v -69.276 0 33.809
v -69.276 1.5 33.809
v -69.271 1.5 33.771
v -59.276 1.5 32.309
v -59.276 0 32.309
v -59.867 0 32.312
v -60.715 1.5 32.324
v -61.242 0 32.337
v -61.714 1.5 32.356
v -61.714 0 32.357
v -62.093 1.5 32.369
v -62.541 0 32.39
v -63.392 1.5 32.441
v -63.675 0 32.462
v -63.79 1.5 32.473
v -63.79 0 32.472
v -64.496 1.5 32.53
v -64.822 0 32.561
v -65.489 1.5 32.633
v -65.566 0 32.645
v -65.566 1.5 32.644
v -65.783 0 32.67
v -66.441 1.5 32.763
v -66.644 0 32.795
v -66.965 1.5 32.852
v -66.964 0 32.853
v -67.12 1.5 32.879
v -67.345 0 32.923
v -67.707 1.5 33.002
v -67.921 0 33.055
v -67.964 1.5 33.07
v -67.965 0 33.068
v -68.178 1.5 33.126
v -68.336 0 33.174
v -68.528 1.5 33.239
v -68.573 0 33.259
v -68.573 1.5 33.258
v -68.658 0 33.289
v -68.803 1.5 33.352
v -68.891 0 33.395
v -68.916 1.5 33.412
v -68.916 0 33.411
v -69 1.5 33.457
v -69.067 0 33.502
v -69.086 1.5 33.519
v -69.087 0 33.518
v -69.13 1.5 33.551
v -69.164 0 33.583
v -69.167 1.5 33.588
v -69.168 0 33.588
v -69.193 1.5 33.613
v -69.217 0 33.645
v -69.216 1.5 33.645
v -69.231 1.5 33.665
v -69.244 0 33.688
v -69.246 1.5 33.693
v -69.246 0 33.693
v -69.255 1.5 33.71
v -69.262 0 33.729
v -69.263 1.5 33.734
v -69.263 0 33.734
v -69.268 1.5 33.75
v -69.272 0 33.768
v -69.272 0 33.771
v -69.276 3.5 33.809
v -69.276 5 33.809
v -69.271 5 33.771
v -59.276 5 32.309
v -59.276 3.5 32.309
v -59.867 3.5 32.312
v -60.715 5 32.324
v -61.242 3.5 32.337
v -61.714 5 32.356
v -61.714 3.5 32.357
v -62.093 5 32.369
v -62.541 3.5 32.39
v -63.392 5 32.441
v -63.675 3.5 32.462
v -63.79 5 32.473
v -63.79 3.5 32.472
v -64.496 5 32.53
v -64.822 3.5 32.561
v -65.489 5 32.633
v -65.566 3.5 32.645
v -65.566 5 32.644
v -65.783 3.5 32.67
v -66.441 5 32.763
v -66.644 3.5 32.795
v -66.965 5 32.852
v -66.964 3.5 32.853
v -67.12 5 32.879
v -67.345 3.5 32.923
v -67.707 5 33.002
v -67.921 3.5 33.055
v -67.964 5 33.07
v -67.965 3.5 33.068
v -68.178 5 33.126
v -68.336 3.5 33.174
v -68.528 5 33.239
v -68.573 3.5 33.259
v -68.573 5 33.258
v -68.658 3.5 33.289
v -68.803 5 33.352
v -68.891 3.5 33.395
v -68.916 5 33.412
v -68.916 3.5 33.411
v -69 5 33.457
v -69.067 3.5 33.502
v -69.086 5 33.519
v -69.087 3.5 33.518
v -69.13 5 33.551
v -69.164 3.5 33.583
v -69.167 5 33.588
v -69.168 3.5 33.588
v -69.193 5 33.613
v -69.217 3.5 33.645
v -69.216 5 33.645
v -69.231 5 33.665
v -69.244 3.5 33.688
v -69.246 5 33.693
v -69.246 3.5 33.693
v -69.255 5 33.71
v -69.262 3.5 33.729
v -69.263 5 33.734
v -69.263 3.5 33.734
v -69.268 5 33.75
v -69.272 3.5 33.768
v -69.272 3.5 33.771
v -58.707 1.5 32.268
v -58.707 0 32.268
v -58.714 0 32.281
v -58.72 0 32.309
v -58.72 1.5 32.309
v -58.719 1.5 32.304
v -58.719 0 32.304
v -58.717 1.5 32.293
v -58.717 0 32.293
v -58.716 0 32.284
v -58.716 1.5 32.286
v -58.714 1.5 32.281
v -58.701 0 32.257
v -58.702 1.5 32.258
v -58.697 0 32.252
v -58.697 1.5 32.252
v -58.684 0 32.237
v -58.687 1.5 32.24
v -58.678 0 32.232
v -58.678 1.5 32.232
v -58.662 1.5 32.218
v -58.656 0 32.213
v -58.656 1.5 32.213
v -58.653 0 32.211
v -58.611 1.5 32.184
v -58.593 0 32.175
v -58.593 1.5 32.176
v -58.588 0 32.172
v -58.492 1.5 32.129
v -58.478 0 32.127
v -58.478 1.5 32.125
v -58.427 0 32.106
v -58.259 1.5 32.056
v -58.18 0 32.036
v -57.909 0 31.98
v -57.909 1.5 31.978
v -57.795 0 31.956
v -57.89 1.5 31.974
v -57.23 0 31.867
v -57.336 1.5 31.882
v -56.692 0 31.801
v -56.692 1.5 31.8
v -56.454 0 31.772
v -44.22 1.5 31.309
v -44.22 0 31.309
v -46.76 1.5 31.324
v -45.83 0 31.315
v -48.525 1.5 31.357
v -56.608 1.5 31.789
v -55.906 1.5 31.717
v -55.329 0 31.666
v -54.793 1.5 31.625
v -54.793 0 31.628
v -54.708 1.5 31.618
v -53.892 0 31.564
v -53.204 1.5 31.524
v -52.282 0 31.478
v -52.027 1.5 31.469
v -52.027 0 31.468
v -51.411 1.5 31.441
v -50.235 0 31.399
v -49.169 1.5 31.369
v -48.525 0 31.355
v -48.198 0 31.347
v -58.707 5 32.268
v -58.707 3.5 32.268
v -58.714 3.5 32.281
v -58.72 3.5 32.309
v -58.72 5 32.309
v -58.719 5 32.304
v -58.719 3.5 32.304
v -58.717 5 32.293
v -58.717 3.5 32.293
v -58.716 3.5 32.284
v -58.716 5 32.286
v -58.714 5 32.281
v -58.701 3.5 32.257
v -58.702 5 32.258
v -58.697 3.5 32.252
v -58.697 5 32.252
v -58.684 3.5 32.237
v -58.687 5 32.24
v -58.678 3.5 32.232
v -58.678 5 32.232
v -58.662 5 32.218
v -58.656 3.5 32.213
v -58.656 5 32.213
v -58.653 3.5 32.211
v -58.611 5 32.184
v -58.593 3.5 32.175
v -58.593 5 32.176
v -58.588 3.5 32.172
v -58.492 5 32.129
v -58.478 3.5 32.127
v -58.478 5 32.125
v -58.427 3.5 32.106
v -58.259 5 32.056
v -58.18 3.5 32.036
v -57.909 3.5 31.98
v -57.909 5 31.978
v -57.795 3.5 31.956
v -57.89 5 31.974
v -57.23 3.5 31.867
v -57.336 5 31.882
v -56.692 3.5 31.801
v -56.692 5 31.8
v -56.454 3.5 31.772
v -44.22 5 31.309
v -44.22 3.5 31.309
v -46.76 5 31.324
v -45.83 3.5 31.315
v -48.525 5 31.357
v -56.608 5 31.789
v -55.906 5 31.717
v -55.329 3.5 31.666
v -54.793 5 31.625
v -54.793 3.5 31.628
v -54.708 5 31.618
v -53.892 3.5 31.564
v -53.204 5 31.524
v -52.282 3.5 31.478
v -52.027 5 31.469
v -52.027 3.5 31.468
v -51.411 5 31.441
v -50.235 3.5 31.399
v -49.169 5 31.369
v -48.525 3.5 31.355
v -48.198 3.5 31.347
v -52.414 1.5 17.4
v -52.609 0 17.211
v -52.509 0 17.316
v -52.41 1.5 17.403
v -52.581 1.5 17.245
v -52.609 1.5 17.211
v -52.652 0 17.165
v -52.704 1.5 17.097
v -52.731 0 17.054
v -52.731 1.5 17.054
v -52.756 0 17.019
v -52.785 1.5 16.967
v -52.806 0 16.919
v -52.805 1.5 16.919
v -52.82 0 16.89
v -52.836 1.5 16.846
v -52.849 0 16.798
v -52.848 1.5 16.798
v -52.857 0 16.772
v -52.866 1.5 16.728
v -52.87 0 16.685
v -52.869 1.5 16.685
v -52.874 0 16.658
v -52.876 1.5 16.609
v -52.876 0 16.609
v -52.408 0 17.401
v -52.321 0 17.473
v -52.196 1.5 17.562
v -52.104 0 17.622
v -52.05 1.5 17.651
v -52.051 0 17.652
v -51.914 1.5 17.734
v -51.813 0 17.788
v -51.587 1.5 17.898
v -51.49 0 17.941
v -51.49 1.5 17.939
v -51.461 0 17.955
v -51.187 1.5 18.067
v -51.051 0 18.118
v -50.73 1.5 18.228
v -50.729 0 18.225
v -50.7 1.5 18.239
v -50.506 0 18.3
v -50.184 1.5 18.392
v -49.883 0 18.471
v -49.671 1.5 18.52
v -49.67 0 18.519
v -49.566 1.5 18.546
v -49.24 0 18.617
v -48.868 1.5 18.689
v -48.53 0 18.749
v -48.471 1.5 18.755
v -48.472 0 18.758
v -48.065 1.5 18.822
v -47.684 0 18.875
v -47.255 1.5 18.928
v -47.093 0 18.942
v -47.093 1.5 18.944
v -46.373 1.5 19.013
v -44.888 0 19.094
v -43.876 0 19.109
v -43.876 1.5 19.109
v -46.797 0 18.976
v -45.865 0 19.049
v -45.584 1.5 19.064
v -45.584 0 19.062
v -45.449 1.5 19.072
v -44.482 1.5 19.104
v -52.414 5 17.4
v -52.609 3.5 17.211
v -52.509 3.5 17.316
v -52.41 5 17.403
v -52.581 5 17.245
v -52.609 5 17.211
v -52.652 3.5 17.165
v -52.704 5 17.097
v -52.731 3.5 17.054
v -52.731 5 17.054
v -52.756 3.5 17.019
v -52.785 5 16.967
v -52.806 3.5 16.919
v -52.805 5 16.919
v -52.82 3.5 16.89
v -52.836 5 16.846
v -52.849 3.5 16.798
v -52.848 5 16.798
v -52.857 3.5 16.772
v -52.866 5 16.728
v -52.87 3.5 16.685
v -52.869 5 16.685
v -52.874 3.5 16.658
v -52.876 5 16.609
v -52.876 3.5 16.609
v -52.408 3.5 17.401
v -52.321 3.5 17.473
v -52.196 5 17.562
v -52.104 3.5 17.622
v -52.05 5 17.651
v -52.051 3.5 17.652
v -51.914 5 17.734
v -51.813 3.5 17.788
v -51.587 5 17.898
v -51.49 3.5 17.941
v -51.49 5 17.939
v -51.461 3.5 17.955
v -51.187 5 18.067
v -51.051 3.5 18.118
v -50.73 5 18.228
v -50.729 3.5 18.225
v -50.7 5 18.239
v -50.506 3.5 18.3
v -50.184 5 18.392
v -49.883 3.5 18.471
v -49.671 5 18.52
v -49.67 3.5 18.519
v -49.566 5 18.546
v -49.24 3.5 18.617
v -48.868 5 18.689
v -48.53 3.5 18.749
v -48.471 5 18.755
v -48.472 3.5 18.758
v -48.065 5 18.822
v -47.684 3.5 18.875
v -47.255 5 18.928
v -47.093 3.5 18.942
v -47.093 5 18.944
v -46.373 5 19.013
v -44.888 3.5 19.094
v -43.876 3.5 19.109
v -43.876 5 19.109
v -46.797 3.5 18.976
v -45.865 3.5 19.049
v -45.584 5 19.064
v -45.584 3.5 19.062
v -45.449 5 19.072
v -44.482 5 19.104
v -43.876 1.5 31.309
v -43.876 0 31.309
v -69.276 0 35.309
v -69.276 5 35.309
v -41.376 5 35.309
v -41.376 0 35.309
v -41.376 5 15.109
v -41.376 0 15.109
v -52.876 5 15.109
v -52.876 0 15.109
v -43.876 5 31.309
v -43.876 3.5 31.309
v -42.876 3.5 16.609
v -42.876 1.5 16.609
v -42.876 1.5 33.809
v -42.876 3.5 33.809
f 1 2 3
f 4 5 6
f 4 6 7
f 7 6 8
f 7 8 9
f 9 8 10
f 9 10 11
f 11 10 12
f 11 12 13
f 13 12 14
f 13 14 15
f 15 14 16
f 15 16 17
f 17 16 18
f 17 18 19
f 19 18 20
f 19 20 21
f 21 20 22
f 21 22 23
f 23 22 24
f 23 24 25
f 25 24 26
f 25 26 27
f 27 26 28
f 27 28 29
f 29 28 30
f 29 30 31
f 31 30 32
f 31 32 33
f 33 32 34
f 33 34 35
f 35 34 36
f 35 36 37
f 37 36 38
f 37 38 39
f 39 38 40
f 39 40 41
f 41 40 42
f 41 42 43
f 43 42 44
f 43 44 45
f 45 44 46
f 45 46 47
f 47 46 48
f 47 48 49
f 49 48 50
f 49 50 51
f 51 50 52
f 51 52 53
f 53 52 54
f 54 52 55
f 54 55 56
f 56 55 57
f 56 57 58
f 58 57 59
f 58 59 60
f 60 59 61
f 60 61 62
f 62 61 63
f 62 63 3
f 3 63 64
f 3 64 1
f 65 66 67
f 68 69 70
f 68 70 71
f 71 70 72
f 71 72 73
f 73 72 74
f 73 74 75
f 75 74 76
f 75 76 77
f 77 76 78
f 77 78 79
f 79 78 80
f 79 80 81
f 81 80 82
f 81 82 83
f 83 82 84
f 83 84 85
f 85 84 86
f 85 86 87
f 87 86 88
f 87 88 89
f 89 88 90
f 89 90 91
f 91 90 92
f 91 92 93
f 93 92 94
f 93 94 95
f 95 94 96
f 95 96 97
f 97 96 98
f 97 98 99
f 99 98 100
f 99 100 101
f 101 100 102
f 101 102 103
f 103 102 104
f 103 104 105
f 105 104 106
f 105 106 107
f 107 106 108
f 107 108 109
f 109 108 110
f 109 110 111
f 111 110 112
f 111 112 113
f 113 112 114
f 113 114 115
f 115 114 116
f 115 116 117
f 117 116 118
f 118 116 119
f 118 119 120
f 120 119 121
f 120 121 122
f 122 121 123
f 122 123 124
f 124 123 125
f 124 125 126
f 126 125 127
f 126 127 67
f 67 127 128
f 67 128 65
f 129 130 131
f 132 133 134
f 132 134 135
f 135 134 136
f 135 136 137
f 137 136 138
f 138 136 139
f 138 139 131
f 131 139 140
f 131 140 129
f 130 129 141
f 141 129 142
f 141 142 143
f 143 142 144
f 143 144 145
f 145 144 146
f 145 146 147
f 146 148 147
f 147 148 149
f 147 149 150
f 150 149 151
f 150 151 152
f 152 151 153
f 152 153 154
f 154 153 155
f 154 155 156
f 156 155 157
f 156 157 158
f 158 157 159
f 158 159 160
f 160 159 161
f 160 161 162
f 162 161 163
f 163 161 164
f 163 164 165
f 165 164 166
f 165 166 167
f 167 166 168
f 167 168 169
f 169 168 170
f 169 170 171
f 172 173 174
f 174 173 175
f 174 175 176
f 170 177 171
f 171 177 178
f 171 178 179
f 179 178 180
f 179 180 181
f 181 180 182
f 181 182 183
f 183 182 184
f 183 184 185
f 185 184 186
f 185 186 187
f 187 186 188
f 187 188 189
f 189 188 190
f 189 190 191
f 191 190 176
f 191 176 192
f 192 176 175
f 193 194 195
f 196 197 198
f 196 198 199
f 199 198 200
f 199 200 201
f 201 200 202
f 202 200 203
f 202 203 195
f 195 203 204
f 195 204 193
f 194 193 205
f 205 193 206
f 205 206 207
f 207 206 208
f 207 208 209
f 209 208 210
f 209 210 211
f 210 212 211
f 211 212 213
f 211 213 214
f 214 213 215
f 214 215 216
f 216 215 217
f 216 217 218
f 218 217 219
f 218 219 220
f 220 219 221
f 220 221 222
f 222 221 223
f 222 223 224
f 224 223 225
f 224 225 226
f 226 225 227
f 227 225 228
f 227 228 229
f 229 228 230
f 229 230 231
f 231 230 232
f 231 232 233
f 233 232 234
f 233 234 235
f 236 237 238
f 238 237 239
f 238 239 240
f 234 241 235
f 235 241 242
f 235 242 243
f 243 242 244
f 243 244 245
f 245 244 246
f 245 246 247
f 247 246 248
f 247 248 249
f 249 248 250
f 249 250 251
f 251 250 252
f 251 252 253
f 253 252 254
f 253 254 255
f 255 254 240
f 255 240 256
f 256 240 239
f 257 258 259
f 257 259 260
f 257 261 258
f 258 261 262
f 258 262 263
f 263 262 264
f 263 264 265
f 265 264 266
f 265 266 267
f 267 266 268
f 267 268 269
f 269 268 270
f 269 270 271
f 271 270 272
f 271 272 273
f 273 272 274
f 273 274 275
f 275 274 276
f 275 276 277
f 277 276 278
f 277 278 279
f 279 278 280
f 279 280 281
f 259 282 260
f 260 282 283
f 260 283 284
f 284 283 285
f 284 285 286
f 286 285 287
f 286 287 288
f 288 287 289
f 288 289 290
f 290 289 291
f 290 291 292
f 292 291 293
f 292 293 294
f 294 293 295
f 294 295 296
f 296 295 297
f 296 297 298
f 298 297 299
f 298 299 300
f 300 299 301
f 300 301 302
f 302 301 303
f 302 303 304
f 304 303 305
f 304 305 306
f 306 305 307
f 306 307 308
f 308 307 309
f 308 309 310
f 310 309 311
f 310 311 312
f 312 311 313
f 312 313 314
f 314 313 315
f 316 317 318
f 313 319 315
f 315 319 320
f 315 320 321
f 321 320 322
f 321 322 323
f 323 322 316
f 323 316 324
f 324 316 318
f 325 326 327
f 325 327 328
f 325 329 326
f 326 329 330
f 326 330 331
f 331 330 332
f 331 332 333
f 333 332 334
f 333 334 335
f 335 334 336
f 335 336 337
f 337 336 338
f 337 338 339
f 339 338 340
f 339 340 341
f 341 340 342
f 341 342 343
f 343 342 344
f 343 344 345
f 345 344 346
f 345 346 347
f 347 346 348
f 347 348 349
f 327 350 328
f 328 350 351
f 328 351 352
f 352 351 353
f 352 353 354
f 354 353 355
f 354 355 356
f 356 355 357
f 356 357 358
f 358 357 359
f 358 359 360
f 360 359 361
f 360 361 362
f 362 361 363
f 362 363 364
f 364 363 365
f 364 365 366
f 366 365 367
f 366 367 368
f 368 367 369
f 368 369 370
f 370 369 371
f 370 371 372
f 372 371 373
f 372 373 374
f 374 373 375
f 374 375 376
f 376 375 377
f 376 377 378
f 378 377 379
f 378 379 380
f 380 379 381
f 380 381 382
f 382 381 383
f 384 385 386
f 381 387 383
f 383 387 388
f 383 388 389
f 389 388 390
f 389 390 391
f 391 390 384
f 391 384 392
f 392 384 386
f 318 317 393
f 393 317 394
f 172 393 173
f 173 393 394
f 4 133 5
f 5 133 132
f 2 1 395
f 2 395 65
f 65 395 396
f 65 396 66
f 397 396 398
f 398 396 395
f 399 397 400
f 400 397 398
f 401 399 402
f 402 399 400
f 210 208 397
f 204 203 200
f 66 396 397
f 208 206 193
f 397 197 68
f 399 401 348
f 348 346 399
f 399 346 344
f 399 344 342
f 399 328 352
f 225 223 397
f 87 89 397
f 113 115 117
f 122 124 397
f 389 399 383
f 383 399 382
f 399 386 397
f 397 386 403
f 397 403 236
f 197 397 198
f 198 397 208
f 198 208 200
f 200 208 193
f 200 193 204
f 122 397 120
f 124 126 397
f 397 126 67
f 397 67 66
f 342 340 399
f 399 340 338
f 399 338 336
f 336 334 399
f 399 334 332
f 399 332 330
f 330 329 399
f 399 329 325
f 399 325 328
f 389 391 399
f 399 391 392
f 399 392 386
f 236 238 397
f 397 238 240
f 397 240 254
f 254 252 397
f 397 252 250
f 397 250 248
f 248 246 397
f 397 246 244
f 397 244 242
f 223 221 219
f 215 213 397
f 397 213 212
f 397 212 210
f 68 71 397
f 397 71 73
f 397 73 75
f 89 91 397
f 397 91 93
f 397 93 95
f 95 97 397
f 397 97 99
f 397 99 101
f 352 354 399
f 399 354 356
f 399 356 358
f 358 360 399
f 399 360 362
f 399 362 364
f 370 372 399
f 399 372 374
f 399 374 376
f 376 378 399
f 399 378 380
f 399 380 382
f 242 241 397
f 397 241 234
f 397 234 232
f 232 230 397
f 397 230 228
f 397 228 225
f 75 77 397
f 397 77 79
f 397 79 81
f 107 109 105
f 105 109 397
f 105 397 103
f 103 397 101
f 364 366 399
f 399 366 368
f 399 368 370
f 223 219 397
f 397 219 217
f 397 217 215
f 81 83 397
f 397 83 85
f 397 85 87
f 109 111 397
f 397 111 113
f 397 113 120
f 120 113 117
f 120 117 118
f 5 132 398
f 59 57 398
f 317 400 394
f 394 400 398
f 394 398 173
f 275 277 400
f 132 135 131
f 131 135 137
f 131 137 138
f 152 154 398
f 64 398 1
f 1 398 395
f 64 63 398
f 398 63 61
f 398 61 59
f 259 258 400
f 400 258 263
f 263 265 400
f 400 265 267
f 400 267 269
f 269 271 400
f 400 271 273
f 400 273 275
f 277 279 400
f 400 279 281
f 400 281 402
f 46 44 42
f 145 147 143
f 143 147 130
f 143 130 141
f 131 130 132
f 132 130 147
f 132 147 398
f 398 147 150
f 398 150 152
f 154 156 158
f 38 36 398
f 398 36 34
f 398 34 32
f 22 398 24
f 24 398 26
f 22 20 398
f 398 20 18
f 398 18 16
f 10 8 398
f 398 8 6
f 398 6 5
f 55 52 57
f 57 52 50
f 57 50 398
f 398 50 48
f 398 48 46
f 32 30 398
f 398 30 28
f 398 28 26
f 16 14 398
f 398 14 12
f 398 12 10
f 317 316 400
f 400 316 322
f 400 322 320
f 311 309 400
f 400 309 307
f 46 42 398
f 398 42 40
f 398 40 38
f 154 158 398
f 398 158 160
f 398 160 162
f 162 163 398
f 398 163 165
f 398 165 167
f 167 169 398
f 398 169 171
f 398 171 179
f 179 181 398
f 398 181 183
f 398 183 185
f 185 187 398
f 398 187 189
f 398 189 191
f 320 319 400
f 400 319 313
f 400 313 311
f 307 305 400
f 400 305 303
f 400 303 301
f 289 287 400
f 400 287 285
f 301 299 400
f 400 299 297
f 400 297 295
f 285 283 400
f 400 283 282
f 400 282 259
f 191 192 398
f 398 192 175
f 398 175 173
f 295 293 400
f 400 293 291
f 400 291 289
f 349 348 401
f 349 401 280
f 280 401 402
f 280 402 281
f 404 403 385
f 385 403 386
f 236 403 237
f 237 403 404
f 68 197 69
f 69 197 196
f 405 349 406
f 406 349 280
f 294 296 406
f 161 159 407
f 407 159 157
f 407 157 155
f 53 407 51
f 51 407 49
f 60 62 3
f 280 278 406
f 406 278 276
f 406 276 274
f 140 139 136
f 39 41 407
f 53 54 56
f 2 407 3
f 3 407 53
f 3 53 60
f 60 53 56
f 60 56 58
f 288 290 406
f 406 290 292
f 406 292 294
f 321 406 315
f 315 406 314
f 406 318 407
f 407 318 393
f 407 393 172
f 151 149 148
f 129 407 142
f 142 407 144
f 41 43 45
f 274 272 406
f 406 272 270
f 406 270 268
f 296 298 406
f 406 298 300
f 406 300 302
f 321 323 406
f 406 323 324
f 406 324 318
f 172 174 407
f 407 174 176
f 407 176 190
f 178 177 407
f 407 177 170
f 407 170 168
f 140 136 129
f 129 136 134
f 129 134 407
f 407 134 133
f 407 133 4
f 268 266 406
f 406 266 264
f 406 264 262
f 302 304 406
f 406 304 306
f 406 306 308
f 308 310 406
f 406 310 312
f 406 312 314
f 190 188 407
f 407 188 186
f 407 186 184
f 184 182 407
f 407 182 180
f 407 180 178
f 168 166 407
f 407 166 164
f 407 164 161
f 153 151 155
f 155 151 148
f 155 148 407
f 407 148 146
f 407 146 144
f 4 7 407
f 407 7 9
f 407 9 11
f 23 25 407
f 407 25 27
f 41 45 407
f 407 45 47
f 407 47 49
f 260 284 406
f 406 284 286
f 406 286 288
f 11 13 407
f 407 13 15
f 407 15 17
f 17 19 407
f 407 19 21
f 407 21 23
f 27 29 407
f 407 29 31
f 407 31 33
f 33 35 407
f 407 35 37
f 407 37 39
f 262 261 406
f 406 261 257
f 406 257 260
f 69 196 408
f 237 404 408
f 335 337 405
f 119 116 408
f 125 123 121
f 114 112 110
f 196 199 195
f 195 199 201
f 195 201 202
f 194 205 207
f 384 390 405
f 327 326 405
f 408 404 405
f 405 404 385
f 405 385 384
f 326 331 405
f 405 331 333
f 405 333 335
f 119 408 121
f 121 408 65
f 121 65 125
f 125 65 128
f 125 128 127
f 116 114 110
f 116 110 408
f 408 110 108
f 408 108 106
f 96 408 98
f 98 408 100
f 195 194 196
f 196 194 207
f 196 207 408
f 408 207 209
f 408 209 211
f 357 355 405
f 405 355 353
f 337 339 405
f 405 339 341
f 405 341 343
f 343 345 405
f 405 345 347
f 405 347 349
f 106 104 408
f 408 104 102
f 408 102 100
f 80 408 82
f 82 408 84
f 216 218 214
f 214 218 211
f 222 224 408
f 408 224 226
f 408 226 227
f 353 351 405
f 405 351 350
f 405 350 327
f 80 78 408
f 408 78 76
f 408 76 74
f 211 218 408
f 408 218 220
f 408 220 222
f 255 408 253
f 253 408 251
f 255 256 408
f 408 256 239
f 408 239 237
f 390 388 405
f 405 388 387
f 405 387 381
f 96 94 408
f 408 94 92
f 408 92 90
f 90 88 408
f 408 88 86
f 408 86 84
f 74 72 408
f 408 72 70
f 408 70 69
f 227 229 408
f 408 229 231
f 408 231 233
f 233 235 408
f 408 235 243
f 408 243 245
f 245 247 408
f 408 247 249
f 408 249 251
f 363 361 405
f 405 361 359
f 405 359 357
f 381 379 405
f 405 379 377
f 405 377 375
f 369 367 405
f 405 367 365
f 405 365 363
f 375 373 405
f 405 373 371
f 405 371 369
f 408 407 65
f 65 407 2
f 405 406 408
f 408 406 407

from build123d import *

# Parameters (mm, degrees)
SKETCH1_W           = 27.9
SKETCH1_H           = 20.2
BOSS_EXTRUDE2_DEPTH = 5
CUT_EXTRUDE3_DEPTH  = 5
SKETCH5_W           = 17.2
SKETCH5_H           = 2
CUT_EXTRUDE4_DEPTH  = 26.4
FILLET1_SIZE        = 2.5
FILLET1_SIZE_2      = 9
FILLET2_SIZE        = 9
FILLET2_SIZE_2      = 2.5
FILLET3_SIZE        = 1
FILLET3_SIZE_2      = 14.5
FILLET4_DEPTH       = 1.5
FILLET5_START       = 3.5
FILLET5_DEPTH       = 1.5
FILLET6_DEPTH       = 1.5


with BuildPart() as part:
    # Sketch1 → Boss-Extrude2 (new body)
    with BuildSketch(Plane(origin=(0, 0, 0), x_dir=(1, 0, 0), z_dir=(0, 1, 0))):
        with Locations((-55.325764497, -25.209039536)):
            Rectangle(SKETCH1_W, SKETCH1_H)
    extrude(amount=BOSS_EXTRUDE2_DEPTH)

    # Sketch4 → Cut-Extrude3 (cut)
    with BuildSketch(Plane(origin=(0, 5, 0), x_dir=(1, 0, 0), z_dir=(0, 1, 0))):
        Polygon((-69.275764497, -32.309039536), (-58.719837606, -32.309039536), (-58.719837606, -31.309039536), (-43.875764497, -31.309039536), (-43.875764497, -19.109039536), (-52.875764497, -19.109039536), (-52.875764497, -15.109039536), (-69.275764497, -15.109039536), align=None)
    extrude(amount=-CUT_EXTRUDE3_DEPTH, mode=Mode.SUBTRACT)

    # Sketch5 → Cut-Extrude4 (cut)
    with BuildSketch(Plane.ZY.offset(69.275764497)):
        with Locations((25.209039536, 2.5)):
            Rectangle(SKETCH5_W, SKETCH5_H)
    extrude(amount=-CUT_EXTRUDE4_DEPTH, mode=Mode.SUBTRACT)

    # Fillet1
    # a fillet whose section is not a circle: 9, 2.5 mm, written as the material it takes off along each edge
    with BuildSketch(Plane(origin=(-52.875764497, 27.5, 19.109039536), x_dir=(0, 0, -1), z_dir=(0, -1, 0))) as fillet1_piece_1_section:
        with BuildLine():
            Bezier((FILLET1_SIZE, 0), (0, 0), (0, FILLET1_SIZE_2), weights=[1, 0.707106781, 1])
            Line((0, FILLET1_SIZE_2), (0, 0))
            Line((0, 0), (FILLET1_SIZE, 0))
        make_face()
    fillet1_piece_1 = extrude(amount=46.5, mode=Mode.PRIVATE)
    fillet1_piece_1 = split(fillet1_piece_1, bisect_by=Plane(origin=(-52.875764497, 1.5, 19.109039536), z_dir=(0, 1, 0)), keep=Keep.TOP, mode=Mode.PRIVATE)
    add(fillet1_piece_1, mode=Mode.SUBTRACT)

    # Fillet2
    # a fillet whose section is not a circle: 9, 2.5 mm, written as the material it takes off along each edge
    with BuildSketch(Plane(origin=(-52.875764497, 24, 19.109039536), x_dir=(1, 0, 0), z_dir=(0, -1, 0))) as fillet2_piece_1:
        with BuildLine():
            Bezier((FILLET2_SIZE, 0), (0, 0), (0, -FILLET2_SIZE_2), weights=[1, 0.707106781, 1])
            Line((0, -FILLET2_SIZE_2), (0, 0))
            Line((0, 0), (FILLET2_SIZE, 0))
        make_face()
    extrude(amount=46.5, mode=Mode.SUBTRACT)

    # Fillet3
    # a fillet whose section is not a circle: 14.5, 1 mm, written as the material it takes off along each edge
    with BuildSketch(Plane(origin=(-58.719837606, 41.25, 31.309039536), x_dir=(0, 0, 1), z_dir=(0, -1, 0))) as fillet3_piece_1_section:
        with BuildLine():
            Bezier((FILLET3_SIZE, 0), (0, 0), (0, -FILLET3_SIZE_2), weights=[1, 0.707106781, 1])
            Line((0, -FILLET3_SIZE_2), (0, 0))
            Line((0, 0), (FILLET3_SIZE, 0))
        make_face()
    fillet3_piece_1 = extrude(amount=74, mode=Mode.PRIVATE)
    fillet3_piece_1 = split(fillet3_piece_1, bisect_by=Plane(origin=(-58.719837606, 1.5, 31.309039536), z_dir=(0, 1, 0)), keep=Keep.TOP, mode=Mode.PRIVATE)
    add(fillet3_piece_1, mode=Mode.SUBTRACT)

    # Fillet4: read off the stored shape, not the designer's step
    # Fillet4 outline → Fillet4 (cut)
    with BuildSketch(Plane(origin=(0, 0, 0), x_dir=(1, 0, 0), z_dir=(0, 1, 0))):
        with BuildLine():
            add(Edge.make_bspline(
                [(-44.219837606, -31.309039536), (-58.719837606, -31.309039536), (-58.719837606, -32.309039536)],
                knots=[0, 0, 0, 1, 1, 1], degree=2, weights=[1, 0.707106781, 1]))
            Line((-44.219837606, -31.309039536), (-58.719837606, -31.309039536))
            Line((-58.719837606, -31.309039536), (-58.719837606, -32.309039536))
        make_face()
    extrude(amount=FILLET4_DEPTH, mode=Mode.SUBTRACT)

    # Fillet5: read off the stored shape, not the designer's step
    # Fillet5 outline → Fillet5 (cut)
    with BuildSketch(Plane(origin=(0, 0, 0), x_dir=(1, 0, 0), z_dir=(0, 1, 0)).offset(FILLET5_START)):
        with BuildLine():
            add(Edge.make_bspline(
                [(-59.275764497, -32.309039536), (-69.275764497, -32.309039536), (-69.275764497, -33.809039536)],
                knots=[0, 0, 0, 1, 1, 1], degree=2, weights=[1, 0.707106781, 1]))
            Line((-59.275764497, -32.309039536), (-69.275764497, -32.309039536))
            Line((-69.275764497, -32.309039536), (-69.275764497, -33.809039536))
        make_face()
    extrude(amount=FILLET5_DEPTH, mode=Mode.SUBTRACT)

    # Fillet6: read off the stored shape, not the designer's step
    # Fillet6 outline → Fillet6 (cut)
    with BuildSketch(Plane(origin=(0, 0, 0), x_dir=(1, 0, 0), z_dir=(0, 1, 0))):
        with BuildLine():
            add(Edge.make_bspline(
                [(-59.275764497, -32.309039536), (-69.275764497, -32.309039536), (-69.275764497, -33.809039536)],
                knots=[0, 0, 0, 1, 1, 1], degree=2, weights=[1, 0.707106781, 1]))
            Line((-59.275764497, -32.309039536), (-69.275764497, -32.309039536))
            Line((-69.275764497, -32.309039536), (-69.275764497, -33.809039536))
        make_face()
    extrude(amount=FILLET6_DEPTH, mode=Mode.SUBTRACT)


solid = part.part
